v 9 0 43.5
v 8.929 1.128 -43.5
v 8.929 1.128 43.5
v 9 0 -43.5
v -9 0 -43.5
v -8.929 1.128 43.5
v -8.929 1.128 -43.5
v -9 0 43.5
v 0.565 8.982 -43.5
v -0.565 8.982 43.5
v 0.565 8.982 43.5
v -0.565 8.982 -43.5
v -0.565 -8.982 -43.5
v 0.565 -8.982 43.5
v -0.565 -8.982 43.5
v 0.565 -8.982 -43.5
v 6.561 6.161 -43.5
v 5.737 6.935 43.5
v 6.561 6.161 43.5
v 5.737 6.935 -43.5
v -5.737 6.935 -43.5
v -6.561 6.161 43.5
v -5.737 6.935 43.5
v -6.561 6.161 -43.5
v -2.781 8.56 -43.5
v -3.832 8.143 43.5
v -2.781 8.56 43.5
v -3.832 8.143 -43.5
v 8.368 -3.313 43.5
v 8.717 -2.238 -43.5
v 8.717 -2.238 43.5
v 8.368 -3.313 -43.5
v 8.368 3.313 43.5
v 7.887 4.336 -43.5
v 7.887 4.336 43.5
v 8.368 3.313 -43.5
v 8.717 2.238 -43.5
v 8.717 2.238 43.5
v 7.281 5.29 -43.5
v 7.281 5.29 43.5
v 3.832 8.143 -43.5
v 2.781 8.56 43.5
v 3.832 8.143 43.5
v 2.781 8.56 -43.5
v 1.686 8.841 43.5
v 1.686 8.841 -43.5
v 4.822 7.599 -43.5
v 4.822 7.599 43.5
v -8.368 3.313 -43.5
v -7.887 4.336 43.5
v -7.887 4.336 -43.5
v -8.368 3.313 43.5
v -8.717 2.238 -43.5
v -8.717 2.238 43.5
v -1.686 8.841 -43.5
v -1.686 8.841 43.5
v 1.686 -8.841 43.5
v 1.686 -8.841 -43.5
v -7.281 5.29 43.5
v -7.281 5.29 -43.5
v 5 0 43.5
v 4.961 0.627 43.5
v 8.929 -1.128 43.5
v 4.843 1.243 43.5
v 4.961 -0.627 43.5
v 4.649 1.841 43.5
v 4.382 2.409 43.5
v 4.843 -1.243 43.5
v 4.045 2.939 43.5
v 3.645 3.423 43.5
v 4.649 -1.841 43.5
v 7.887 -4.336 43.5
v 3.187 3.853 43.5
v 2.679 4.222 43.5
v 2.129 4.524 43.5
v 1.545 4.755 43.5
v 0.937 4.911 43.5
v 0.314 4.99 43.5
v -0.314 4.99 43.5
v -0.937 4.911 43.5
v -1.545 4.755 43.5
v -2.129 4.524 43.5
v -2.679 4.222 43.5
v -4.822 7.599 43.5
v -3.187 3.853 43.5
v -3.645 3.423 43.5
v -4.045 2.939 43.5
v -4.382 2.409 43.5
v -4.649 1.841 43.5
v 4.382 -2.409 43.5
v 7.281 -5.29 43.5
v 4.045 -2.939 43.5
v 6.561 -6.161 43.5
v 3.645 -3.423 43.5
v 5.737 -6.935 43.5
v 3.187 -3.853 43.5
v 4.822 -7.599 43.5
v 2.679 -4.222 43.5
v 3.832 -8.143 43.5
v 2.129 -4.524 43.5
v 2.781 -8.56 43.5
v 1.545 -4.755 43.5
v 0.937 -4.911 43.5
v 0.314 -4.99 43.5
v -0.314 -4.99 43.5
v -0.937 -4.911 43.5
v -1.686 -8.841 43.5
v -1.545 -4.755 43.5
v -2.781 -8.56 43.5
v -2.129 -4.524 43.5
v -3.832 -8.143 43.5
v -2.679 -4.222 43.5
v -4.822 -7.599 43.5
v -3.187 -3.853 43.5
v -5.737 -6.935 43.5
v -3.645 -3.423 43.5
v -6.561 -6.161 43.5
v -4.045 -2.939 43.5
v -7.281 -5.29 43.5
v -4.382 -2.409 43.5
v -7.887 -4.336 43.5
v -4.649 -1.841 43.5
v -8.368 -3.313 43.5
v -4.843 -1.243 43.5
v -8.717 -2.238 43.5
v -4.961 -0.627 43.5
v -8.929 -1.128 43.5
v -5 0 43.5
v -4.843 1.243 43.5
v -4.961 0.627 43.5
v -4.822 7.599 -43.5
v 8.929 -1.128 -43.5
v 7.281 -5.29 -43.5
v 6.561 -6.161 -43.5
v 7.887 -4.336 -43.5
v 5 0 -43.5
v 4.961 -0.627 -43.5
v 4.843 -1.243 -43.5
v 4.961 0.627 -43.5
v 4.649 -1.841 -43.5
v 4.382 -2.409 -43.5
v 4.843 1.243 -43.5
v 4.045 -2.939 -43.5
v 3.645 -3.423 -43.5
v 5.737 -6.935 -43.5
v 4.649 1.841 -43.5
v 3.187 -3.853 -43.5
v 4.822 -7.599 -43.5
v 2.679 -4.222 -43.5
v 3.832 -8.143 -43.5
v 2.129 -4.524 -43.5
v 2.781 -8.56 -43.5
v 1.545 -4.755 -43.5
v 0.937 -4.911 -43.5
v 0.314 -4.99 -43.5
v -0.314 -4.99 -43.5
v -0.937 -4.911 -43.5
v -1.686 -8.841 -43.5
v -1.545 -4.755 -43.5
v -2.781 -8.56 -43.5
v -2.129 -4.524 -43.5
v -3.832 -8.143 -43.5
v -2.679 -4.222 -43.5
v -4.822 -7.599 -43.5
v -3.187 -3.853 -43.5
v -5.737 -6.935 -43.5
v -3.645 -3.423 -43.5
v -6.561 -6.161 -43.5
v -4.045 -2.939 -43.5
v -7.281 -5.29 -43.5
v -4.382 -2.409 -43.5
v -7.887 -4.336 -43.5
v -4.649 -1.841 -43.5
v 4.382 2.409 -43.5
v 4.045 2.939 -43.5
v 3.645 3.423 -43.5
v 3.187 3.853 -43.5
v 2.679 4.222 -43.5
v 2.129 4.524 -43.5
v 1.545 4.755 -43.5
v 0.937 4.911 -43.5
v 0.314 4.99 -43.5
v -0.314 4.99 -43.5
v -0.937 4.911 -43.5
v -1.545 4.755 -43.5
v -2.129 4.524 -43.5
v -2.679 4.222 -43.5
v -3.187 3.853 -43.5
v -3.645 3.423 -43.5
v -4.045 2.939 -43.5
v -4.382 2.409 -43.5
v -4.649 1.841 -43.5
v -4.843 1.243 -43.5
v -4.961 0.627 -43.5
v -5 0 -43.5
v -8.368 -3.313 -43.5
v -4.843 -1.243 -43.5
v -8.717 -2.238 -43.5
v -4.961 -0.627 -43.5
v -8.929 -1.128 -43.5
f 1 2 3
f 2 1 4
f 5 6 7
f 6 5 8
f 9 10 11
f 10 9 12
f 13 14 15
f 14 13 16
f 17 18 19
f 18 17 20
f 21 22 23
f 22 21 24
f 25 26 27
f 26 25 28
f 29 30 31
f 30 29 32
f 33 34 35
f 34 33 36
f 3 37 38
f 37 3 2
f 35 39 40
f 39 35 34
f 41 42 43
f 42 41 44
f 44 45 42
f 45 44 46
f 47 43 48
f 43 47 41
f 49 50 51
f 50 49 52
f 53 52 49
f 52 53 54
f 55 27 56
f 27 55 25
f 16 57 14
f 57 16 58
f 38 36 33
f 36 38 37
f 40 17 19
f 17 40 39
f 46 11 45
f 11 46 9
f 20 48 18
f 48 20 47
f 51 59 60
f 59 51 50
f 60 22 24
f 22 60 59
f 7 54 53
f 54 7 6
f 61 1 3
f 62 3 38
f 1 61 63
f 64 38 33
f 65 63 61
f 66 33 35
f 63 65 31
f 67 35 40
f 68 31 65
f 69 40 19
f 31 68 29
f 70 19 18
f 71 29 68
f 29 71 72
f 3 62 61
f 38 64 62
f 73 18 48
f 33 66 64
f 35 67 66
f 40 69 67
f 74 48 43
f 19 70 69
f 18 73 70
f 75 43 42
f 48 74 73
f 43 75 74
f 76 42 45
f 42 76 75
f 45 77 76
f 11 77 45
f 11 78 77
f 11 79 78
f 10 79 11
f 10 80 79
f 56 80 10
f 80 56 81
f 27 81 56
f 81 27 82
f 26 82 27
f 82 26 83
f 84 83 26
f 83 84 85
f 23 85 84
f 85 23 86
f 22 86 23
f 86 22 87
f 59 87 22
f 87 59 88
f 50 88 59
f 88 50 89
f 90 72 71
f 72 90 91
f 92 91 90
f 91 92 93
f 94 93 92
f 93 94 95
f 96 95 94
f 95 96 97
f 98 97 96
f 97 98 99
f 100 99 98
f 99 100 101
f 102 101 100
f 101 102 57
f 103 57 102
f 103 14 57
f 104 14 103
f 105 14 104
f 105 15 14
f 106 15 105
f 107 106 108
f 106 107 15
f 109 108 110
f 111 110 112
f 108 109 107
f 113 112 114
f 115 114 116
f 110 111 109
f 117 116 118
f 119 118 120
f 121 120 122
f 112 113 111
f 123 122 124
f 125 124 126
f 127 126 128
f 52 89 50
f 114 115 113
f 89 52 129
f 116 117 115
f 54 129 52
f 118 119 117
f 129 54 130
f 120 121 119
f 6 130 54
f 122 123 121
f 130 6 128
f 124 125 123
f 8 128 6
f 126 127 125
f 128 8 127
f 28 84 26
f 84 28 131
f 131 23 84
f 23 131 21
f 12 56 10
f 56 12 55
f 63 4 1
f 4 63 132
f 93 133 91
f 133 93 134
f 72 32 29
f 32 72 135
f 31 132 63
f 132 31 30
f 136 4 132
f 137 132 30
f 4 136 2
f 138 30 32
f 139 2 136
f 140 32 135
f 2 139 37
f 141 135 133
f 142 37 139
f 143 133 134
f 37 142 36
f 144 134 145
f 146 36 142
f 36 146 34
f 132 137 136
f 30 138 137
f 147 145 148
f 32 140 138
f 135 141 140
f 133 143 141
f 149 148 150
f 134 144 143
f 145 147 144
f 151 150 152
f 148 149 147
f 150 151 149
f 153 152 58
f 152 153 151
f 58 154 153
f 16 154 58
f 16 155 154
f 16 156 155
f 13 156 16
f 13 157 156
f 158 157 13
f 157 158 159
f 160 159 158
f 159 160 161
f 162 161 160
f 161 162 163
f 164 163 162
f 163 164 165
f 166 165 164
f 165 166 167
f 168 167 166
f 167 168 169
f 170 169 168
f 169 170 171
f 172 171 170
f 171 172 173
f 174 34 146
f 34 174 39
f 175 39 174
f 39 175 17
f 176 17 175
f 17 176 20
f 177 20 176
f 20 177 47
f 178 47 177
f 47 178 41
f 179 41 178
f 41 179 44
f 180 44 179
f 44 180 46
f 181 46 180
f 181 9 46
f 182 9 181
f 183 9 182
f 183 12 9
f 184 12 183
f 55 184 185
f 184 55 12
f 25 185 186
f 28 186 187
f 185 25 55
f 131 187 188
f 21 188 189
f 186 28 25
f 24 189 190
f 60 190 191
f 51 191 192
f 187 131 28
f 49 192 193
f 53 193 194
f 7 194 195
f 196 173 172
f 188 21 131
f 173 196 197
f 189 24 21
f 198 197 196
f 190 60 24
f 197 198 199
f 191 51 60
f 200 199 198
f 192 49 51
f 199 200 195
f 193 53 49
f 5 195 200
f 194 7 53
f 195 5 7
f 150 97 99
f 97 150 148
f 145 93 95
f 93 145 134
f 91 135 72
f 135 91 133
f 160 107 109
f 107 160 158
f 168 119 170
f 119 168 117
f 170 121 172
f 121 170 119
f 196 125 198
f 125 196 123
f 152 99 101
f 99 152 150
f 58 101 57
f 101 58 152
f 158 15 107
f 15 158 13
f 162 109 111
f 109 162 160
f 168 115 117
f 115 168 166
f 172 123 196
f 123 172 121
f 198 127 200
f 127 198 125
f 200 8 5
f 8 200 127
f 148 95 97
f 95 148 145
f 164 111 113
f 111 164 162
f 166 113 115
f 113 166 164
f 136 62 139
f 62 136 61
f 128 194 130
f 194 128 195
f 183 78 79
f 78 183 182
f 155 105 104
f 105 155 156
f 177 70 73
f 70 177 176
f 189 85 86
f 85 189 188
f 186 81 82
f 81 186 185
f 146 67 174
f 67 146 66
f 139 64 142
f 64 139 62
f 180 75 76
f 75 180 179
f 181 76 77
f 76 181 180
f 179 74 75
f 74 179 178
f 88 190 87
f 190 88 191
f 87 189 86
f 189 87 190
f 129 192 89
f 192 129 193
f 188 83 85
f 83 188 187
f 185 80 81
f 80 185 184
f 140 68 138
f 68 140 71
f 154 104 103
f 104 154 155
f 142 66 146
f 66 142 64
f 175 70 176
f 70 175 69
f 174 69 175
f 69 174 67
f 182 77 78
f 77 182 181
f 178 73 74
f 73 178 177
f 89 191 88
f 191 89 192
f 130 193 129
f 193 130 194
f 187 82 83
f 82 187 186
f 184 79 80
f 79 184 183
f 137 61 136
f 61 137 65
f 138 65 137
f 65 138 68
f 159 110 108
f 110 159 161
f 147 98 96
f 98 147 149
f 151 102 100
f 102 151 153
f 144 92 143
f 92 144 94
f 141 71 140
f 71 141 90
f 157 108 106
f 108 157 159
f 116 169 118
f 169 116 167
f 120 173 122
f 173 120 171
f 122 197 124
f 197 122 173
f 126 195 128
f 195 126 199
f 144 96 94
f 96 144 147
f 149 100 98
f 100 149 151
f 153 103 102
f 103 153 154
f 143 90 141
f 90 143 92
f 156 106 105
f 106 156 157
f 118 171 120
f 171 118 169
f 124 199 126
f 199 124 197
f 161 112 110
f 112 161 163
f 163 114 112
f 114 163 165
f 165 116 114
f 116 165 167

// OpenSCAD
$fn = 50;


difference() {
	union() {
		translate(v = [0, 0, -43.5000000000]) {
			cylinder(h = 87, r = 9.0000000000);
		}
	}
	union() {
		translate(v = [0, 0, -100.0000000000]) {
			cylinder(h = 200, r = 5.0000000000);
		}
	}
}
